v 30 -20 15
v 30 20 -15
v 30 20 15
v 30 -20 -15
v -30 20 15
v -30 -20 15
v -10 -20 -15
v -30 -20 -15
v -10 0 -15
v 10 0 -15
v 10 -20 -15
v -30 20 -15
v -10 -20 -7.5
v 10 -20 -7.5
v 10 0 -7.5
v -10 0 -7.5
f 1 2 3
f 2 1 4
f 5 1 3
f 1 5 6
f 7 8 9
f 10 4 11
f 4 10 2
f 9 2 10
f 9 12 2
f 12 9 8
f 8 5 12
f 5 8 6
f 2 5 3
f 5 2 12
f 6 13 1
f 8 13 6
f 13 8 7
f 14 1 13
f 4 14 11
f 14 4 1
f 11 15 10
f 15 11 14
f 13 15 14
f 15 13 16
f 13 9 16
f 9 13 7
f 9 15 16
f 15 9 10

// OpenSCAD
// Dimensions for the base block
base_length = 60;  // Length of the block
base_width = 40;   // Width of the block
base_height = 30;  // Height of the block

// Dimensions for the U-shaped cutout
cutout_width = 20;  // Width of the cutout
cutout_height = 15; // Height of the cutout
cutout_depth = 20;  // Depth of the cutout (adjusted to match original model)

// Main module to create the base block with the U-shaped cutout
module base_block() {
    // Create the main rectangular block
    difference() {
        cube([base_length, base_width, base_height], center = true);
        
        // Create the U-shaped cutout
        translate([0, -base_width / 2 + cutout_width / 2, -base_height / 2])  // Align cutout to one side
            cube([cutout_depth, cutout_width, cutout_height], center = true);
    }
}

// Render the base block
base_block();
